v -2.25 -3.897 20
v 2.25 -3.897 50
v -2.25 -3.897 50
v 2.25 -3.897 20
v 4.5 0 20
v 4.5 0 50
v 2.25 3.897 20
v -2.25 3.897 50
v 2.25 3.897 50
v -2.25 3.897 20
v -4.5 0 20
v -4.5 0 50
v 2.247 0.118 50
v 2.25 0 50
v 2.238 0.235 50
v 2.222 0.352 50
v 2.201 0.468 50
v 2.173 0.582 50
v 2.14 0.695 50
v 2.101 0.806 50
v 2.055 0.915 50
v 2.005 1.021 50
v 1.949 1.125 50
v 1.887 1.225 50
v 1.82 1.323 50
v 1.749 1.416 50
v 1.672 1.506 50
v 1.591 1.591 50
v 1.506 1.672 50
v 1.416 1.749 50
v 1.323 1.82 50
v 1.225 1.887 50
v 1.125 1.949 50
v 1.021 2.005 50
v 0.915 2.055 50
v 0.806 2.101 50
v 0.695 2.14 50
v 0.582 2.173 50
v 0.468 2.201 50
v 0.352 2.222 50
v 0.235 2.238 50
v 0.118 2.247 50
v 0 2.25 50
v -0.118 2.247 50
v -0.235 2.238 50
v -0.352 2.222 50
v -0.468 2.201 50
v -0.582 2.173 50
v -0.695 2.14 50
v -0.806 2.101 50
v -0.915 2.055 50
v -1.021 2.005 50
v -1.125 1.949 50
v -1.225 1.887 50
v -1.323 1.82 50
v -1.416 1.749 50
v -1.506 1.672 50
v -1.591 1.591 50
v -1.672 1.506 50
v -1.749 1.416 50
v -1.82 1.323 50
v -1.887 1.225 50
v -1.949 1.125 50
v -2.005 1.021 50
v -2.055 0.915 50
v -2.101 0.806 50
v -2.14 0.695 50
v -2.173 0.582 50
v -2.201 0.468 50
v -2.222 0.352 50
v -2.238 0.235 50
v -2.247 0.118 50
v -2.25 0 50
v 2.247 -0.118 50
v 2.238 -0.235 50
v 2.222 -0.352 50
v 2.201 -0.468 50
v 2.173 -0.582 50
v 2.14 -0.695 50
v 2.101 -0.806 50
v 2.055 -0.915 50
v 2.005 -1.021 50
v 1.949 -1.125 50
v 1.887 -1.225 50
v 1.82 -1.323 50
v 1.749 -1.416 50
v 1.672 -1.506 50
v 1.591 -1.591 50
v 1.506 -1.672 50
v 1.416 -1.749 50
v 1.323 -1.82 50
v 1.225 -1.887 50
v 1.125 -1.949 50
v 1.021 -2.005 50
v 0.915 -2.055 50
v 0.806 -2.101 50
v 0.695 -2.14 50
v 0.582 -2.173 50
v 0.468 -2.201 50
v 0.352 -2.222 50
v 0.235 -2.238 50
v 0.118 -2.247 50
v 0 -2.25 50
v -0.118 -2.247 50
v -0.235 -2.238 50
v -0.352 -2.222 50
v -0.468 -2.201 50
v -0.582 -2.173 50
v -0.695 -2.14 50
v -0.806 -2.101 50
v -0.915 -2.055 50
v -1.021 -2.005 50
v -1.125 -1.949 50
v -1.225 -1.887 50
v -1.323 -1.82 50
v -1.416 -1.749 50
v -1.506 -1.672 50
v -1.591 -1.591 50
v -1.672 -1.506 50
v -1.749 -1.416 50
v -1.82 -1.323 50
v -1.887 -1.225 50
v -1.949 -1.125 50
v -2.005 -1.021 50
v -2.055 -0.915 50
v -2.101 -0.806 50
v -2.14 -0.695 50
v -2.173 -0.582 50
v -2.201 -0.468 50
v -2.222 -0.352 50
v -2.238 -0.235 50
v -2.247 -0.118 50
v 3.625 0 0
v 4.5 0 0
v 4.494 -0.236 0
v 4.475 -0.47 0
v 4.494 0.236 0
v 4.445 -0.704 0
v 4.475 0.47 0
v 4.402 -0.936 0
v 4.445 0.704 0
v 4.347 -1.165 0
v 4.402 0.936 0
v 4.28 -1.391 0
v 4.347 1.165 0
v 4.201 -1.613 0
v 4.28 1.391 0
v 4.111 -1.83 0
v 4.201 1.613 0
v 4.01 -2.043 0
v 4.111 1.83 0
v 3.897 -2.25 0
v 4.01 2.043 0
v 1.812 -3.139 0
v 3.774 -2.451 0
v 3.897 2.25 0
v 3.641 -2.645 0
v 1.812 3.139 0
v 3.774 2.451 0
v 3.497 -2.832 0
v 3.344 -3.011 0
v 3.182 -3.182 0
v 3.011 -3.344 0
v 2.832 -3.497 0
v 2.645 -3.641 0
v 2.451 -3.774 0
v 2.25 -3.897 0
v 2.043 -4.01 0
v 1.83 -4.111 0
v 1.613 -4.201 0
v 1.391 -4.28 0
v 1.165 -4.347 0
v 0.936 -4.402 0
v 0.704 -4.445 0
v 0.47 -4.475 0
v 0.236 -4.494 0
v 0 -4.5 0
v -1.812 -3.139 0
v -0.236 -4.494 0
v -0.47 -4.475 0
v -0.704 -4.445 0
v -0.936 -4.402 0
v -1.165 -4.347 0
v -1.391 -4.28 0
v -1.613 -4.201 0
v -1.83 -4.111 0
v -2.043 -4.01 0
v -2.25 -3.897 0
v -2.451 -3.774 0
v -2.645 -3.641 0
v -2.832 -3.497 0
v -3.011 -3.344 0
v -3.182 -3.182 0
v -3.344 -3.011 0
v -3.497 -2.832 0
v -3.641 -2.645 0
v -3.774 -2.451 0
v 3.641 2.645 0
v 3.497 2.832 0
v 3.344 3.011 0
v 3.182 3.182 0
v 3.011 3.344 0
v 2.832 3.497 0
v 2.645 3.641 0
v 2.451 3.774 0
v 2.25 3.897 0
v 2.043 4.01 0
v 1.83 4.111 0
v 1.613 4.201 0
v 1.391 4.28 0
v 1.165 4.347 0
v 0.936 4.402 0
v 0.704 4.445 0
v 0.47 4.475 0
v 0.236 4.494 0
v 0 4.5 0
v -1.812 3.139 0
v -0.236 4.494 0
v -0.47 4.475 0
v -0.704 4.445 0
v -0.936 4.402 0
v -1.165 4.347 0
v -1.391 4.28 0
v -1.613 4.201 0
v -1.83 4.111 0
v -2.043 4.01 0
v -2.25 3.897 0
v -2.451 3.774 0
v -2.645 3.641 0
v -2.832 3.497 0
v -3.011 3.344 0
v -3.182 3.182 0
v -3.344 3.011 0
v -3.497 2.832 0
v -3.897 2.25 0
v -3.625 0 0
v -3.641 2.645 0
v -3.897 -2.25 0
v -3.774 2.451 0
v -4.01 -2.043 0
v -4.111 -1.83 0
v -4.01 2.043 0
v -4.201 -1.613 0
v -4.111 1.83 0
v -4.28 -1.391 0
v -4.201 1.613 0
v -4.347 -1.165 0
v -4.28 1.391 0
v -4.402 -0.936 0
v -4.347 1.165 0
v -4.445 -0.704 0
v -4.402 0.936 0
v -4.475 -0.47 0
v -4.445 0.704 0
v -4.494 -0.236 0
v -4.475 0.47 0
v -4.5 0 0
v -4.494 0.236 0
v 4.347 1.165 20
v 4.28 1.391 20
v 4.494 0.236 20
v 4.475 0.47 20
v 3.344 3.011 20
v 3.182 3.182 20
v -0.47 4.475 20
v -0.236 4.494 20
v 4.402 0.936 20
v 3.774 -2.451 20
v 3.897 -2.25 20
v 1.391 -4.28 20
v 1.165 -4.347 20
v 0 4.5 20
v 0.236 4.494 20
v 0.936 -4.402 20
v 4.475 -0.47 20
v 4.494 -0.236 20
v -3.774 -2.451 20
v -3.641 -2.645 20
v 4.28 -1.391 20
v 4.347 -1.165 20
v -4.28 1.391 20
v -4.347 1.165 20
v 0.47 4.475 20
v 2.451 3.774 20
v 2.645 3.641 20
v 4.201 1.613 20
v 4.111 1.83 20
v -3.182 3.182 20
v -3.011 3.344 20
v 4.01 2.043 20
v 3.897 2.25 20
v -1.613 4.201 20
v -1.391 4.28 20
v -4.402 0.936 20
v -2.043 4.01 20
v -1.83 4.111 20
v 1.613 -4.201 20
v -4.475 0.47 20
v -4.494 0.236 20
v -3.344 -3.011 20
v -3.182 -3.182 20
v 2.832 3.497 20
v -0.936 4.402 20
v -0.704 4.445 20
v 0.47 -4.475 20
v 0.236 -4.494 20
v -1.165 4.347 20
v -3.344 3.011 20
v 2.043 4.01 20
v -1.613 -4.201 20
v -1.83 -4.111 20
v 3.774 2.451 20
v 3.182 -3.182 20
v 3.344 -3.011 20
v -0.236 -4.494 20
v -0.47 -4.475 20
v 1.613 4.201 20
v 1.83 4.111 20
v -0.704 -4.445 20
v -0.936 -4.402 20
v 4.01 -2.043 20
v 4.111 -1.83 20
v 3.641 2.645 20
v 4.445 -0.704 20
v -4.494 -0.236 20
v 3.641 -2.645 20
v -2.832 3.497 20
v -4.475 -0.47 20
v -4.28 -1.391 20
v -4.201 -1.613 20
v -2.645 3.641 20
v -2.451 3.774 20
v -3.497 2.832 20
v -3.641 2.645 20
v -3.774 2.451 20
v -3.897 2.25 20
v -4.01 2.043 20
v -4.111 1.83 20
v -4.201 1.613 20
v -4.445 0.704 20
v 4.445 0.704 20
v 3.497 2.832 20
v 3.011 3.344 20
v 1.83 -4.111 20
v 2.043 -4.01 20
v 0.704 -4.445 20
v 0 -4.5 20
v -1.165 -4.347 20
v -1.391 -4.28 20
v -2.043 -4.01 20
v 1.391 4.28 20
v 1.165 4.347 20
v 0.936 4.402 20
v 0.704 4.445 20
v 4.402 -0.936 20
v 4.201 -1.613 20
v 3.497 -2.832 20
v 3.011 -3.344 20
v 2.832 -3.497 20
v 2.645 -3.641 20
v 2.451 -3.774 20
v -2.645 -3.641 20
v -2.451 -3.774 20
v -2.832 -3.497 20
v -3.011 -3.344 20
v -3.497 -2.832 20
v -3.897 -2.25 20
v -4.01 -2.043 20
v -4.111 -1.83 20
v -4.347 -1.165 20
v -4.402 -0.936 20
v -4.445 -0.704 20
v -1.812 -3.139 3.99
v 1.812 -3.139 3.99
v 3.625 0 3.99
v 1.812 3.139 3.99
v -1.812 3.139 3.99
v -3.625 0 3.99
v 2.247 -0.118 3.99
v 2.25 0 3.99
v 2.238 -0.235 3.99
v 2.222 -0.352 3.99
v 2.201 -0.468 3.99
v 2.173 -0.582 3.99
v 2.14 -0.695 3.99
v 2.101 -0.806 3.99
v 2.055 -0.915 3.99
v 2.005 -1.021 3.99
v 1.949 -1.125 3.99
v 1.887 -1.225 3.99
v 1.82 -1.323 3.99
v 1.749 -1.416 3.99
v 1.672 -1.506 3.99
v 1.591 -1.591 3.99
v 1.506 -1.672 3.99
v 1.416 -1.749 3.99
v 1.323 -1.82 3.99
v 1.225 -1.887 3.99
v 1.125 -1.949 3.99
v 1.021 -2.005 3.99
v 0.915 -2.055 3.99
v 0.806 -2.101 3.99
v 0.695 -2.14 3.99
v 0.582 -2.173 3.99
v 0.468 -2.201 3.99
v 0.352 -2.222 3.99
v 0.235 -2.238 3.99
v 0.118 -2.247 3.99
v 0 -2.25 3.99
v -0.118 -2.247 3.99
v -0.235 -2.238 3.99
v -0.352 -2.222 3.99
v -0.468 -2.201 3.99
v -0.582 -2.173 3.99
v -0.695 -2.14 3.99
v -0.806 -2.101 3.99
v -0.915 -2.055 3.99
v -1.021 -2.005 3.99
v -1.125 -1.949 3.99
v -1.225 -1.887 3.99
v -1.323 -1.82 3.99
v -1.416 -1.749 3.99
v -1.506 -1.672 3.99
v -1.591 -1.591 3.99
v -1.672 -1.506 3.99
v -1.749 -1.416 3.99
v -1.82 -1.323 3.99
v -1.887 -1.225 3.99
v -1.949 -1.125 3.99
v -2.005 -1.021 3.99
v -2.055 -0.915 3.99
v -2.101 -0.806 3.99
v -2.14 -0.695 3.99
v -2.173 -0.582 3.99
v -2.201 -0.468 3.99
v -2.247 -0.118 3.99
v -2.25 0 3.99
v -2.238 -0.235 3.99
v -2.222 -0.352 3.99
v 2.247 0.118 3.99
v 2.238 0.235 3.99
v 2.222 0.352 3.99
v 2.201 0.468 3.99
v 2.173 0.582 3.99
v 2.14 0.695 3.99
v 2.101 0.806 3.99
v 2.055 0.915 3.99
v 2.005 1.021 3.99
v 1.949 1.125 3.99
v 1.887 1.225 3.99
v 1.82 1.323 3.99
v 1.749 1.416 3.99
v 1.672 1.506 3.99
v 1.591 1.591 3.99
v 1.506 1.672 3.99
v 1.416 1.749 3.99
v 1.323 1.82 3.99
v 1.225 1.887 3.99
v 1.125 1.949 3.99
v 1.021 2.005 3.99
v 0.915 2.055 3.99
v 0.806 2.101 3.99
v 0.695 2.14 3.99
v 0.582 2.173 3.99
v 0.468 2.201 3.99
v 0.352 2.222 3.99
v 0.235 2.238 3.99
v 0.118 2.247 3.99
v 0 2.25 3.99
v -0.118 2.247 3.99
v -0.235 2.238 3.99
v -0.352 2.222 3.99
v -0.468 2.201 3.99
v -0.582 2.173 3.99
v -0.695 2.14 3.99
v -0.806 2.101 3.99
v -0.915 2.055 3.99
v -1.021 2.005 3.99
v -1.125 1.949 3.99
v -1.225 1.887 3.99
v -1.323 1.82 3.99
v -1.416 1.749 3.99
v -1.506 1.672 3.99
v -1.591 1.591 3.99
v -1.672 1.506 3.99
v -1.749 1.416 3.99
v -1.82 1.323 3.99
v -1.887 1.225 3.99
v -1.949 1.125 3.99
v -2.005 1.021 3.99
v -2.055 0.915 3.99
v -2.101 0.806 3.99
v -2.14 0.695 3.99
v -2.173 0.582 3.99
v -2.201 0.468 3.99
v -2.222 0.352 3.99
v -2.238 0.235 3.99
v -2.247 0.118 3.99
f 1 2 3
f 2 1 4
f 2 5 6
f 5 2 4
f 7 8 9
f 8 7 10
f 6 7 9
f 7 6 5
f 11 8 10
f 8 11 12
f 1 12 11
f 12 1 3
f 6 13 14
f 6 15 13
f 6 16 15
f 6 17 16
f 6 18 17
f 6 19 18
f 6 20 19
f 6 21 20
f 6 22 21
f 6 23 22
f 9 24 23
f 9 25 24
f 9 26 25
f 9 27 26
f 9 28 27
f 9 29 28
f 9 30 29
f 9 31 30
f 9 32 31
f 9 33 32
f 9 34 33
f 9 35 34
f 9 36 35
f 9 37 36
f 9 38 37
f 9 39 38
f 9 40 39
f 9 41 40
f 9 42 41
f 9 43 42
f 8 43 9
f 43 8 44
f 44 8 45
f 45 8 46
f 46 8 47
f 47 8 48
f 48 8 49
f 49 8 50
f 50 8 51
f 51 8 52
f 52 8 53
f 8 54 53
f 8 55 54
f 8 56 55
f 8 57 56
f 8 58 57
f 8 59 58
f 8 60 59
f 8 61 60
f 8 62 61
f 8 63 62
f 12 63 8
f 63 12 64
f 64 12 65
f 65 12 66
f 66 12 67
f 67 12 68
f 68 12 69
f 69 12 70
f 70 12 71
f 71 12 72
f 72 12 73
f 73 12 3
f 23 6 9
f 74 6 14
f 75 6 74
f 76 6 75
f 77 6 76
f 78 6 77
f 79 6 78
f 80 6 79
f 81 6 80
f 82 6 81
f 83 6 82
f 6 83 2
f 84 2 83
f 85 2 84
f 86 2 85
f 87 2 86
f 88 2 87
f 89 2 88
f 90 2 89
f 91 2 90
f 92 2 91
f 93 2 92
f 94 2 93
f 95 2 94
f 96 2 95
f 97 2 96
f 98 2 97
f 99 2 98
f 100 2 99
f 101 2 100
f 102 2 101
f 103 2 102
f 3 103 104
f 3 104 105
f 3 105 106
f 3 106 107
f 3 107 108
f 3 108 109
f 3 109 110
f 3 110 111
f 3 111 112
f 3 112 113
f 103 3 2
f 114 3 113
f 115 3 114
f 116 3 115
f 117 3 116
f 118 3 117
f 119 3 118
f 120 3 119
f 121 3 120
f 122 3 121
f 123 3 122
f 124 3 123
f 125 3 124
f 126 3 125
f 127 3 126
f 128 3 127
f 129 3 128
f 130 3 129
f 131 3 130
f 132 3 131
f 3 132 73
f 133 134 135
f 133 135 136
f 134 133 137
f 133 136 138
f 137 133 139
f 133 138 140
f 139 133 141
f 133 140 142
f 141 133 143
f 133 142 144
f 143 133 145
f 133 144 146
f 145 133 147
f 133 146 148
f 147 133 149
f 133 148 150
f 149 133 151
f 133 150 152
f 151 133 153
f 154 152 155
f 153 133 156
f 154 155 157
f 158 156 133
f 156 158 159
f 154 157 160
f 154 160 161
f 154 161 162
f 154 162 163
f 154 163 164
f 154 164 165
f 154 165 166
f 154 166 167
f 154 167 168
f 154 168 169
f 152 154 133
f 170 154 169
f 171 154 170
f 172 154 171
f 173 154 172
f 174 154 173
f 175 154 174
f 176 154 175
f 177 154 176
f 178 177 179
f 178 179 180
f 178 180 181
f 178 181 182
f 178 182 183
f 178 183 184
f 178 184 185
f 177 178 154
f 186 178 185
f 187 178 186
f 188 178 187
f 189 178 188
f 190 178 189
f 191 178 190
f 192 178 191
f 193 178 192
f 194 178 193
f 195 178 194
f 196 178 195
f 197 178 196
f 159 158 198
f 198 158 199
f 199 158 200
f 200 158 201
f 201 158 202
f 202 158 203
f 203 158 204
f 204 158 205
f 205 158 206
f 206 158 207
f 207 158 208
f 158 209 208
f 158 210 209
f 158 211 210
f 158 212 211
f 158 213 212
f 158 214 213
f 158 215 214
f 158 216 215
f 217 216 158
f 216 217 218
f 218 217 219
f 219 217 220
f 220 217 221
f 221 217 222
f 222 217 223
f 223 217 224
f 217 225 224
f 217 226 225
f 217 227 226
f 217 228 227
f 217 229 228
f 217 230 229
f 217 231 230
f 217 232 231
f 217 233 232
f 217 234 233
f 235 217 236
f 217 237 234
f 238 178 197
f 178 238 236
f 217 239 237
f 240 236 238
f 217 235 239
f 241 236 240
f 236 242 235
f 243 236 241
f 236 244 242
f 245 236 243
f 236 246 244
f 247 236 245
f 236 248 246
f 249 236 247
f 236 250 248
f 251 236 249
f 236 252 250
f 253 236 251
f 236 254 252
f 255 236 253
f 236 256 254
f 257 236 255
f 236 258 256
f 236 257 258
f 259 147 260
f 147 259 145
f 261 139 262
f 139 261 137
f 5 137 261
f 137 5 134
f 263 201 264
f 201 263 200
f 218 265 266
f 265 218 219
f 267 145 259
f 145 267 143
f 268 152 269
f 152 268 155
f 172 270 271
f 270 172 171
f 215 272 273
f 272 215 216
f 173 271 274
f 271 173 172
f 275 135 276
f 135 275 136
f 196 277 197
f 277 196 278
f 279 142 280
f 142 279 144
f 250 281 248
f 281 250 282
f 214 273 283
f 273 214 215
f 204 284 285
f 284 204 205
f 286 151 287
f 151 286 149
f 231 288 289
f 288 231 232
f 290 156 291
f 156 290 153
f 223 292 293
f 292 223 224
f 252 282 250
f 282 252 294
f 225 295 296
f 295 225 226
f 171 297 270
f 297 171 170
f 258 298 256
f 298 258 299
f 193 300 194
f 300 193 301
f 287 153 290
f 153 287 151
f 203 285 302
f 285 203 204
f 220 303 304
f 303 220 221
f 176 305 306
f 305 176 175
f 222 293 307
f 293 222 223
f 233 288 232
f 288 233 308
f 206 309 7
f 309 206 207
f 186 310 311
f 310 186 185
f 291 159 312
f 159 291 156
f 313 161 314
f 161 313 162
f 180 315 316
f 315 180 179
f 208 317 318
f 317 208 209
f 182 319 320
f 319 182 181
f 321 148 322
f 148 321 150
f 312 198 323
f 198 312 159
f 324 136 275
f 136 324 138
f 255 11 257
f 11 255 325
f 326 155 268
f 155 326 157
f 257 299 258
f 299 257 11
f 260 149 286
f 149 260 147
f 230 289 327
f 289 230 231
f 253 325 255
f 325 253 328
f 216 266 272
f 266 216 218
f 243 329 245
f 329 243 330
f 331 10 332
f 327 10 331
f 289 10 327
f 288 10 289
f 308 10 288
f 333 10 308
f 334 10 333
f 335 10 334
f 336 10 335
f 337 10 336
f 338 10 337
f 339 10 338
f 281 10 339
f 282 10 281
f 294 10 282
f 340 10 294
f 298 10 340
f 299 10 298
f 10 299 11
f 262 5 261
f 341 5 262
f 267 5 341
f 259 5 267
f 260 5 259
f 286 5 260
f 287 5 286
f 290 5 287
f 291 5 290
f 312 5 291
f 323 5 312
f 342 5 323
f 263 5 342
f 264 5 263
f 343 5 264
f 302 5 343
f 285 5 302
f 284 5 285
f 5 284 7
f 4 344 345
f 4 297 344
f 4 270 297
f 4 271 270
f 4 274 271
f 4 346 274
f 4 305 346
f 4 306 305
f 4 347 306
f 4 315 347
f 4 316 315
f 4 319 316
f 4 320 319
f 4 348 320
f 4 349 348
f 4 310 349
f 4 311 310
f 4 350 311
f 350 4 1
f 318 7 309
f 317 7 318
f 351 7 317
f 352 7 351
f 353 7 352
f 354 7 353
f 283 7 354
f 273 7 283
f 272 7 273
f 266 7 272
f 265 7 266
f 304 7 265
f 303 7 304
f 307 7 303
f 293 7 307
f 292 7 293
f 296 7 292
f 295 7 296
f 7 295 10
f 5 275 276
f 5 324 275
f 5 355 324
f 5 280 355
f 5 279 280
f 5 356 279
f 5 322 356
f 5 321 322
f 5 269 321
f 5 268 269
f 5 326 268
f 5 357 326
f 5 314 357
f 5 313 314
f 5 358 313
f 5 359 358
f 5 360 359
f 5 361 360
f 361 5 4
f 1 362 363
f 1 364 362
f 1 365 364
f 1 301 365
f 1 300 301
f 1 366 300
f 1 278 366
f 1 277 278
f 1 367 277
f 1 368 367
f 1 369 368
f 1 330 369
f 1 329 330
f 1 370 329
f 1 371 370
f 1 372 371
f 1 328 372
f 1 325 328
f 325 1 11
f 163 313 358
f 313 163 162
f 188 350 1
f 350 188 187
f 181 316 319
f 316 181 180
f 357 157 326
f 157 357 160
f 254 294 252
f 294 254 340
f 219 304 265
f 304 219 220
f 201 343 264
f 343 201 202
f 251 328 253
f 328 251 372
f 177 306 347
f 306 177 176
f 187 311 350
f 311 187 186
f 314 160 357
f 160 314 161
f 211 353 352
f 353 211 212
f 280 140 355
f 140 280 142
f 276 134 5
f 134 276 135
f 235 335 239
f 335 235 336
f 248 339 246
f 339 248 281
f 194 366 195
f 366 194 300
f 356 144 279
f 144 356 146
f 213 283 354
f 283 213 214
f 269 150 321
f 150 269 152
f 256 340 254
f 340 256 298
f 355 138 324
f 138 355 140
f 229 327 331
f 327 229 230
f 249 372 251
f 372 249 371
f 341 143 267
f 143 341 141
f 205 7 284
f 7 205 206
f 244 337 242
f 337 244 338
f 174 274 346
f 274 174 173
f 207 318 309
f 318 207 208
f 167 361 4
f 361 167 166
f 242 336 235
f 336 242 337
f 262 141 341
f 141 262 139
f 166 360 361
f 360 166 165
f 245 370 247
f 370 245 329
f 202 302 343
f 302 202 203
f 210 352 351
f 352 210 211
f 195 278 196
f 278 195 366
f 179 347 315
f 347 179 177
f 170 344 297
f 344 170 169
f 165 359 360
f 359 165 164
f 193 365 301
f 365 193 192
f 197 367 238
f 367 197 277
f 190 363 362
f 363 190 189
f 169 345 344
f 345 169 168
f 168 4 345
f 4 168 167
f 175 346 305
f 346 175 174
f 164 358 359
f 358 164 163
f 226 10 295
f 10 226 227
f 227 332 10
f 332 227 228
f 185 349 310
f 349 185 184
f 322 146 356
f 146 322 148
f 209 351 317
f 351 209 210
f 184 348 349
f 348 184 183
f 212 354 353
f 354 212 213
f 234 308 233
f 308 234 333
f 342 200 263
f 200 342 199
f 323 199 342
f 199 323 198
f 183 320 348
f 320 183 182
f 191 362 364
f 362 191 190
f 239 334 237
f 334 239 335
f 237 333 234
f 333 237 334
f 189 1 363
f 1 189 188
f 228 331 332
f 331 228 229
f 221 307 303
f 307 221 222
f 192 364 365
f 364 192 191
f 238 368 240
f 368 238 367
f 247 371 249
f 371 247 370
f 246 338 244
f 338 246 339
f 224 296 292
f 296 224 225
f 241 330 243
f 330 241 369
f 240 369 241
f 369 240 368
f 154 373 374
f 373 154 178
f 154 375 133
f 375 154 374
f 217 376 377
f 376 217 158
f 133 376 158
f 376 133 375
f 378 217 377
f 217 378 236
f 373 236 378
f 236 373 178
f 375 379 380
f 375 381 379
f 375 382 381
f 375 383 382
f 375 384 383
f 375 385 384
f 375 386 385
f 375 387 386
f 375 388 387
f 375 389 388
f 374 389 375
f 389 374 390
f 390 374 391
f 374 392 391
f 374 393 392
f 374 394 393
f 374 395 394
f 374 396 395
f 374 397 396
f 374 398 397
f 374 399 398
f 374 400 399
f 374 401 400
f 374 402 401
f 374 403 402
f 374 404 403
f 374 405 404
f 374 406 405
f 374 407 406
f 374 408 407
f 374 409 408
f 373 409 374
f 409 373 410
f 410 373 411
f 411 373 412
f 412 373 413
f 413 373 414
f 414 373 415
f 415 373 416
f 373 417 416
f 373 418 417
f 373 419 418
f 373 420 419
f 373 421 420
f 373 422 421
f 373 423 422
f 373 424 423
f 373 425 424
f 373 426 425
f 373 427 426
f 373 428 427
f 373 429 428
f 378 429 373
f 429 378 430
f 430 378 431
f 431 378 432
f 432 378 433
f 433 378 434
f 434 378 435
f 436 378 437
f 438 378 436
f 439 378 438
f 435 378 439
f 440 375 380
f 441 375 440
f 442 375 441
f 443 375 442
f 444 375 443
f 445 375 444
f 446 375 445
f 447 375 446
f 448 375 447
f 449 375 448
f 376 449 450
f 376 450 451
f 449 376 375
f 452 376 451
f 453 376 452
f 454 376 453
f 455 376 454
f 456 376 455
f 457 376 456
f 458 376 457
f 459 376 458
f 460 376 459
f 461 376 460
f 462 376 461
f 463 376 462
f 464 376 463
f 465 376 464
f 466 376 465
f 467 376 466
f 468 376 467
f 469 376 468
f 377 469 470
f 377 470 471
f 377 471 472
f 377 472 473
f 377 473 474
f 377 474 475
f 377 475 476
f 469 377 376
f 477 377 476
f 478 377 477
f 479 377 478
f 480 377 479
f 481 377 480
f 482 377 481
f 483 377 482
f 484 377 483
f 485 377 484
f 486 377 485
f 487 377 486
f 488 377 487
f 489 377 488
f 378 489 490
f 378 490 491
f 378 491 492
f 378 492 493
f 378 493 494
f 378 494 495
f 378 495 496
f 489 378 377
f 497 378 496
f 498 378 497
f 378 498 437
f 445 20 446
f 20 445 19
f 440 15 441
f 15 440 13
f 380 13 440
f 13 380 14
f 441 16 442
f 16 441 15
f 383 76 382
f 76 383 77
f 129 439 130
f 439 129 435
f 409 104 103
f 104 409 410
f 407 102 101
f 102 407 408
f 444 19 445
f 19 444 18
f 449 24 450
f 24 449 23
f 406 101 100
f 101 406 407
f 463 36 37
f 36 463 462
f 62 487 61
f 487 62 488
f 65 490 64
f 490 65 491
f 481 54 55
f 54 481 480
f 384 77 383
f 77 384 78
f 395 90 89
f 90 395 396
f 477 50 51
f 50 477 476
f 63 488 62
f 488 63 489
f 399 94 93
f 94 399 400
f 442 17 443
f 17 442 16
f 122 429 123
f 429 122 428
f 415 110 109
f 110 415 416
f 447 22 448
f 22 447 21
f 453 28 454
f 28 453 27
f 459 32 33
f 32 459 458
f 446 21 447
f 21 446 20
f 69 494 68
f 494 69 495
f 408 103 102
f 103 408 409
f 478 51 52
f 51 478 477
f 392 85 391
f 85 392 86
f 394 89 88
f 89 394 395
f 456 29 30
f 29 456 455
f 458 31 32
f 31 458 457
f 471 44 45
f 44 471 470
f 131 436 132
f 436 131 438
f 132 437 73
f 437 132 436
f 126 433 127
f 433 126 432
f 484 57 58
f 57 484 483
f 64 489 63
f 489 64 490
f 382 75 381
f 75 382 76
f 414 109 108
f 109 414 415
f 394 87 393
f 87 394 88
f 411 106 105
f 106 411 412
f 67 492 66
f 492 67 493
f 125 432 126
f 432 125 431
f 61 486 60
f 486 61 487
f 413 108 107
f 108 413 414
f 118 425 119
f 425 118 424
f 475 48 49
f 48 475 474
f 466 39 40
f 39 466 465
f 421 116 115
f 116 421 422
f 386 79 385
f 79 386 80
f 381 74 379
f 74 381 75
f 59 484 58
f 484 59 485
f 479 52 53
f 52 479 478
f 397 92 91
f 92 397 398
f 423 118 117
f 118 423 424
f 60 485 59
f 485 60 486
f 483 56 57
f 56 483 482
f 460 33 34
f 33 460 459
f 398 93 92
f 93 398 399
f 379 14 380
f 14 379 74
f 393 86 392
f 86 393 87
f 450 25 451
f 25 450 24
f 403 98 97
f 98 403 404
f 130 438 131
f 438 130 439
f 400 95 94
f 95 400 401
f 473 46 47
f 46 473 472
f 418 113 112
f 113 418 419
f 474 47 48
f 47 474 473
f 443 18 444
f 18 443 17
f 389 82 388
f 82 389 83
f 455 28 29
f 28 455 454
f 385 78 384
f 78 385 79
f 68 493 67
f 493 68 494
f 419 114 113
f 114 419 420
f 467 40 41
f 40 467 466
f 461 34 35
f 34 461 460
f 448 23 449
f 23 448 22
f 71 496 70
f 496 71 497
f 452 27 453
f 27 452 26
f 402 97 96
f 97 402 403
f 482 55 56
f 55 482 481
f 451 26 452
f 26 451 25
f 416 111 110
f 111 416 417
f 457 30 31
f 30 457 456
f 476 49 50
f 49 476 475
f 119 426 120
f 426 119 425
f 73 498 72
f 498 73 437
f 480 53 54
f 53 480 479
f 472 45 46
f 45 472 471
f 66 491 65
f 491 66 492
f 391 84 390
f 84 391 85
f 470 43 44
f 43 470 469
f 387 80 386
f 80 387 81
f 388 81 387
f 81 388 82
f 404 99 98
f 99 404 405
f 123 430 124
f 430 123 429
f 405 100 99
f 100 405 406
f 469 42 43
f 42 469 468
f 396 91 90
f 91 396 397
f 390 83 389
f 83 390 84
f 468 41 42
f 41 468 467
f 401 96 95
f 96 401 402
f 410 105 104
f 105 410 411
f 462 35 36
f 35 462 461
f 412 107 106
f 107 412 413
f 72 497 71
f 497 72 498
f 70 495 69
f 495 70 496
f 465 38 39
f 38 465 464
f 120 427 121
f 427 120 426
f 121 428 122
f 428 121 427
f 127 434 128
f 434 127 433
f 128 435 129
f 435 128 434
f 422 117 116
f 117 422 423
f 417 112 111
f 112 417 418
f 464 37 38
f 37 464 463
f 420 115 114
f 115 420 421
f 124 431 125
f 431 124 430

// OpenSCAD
$fn=120;


difference() {
    union() {
        cylinder(d=9,50,$fn=6);
        cylinder(d=9,20);
    }
    translate([0,0,-0.01])cylinder(d=7.25,4,$fn=6);
    translate([0,0,-0.01])cylinder(d=4.5,100);
}
    
